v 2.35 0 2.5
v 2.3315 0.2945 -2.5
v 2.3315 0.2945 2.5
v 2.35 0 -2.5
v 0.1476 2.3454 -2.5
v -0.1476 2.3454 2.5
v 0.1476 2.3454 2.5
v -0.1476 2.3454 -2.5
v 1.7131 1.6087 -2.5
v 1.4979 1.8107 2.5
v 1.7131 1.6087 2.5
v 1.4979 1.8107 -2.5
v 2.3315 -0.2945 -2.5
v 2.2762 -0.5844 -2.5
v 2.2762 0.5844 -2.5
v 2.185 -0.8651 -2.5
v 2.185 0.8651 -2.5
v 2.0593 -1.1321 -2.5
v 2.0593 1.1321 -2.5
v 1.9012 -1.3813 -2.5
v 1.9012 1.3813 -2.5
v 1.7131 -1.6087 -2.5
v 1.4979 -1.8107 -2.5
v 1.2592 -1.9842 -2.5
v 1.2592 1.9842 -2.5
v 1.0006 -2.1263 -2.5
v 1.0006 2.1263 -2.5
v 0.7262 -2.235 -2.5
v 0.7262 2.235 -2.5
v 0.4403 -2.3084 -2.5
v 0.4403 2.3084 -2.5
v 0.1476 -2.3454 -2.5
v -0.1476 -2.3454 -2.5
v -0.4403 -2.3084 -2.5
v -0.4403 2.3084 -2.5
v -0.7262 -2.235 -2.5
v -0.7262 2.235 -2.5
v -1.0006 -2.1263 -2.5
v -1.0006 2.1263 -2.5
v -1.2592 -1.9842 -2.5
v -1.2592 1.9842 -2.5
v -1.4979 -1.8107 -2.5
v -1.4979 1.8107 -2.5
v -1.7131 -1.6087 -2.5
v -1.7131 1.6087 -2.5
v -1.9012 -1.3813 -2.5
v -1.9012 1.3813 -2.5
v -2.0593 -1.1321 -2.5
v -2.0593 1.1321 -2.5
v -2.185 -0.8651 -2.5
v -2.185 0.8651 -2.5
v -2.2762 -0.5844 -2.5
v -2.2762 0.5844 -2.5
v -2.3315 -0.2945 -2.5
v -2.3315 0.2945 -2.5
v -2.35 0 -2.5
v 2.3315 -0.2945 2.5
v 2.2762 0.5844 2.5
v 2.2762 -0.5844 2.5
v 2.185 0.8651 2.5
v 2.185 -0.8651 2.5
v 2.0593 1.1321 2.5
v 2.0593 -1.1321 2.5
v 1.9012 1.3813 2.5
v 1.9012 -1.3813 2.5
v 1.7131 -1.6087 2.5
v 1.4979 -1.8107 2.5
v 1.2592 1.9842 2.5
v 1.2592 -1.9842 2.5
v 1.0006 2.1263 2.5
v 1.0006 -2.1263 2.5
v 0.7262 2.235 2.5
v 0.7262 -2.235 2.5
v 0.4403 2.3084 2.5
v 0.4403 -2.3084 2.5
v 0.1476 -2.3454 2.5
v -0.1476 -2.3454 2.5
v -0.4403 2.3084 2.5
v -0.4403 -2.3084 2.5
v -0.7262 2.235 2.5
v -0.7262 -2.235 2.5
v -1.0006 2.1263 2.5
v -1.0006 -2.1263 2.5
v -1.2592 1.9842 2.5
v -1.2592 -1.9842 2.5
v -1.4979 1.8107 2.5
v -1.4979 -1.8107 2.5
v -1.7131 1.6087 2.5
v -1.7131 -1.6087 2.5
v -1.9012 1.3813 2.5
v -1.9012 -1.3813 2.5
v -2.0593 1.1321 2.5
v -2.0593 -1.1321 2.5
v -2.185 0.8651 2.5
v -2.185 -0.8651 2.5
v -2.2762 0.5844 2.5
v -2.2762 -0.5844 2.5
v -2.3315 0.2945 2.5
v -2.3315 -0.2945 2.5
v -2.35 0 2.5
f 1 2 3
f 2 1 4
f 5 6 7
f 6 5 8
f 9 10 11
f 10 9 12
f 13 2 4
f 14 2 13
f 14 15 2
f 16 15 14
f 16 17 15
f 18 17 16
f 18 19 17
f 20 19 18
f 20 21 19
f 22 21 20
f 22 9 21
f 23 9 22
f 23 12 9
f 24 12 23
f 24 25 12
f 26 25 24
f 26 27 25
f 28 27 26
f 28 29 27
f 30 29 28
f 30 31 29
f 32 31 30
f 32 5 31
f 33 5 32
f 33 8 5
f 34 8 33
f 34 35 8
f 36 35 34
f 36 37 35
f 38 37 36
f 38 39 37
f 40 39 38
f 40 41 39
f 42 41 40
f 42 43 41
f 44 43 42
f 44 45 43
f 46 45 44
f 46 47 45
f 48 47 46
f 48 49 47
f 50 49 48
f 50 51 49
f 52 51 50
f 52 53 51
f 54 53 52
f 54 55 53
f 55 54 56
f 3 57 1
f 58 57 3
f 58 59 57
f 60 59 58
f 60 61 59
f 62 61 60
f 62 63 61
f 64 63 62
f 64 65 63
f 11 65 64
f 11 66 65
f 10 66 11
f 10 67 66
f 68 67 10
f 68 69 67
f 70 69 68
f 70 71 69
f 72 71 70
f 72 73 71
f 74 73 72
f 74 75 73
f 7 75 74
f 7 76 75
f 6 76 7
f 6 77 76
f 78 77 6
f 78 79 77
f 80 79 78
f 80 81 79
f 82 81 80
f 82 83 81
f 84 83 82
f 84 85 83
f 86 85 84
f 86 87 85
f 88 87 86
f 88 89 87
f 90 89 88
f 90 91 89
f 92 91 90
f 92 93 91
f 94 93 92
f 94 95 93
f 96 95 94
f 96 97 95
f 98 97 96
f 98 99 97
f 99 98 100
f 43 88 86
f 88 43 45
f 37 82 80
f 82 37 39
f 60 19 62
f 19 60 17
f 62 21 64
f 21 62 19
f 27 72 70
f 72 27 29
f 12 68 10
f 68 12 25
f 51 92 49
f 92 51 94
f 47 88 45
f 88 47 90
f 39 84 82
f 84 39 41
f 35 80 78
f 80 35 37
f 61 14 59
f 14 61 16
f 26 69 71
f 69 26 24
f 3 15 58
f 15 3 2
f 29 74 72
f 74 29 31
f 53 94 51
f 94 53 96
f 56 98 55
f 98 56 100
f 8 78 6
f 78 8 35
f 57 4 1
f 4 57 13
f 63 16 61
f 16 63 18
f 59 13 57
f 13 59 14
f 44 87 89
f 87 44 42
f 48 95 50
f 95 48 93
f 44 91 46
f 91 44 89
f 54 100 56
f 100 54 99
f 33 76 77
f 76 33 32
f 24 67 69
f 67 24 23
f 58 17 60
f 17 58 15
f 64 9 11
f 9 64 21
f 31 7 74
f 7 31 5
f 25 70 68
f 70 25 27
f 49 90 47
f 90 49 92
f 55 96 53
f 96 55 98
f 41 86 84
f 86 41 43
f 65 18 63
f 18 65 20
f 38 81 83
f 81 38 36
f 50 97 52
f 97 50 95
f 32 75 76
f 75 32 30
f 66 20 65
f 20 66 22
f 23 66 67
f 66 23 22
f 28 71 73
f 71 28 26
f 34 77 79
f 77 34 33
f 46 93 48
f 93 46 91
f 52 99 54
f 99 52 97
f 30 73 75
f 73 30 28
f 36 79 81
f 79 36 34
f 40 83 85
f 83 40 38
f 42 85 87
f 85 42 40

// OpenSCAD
$fn = 50;


difference() {
	union() {
		translate(v = [0, 0, -2.5000000000]) {
			cylinder(h = 5, r = 2.3500000000);
		}
	}
	union() {
		translate(v = [0, 0, -100.0000000000]) {
			cylinder(h = 200, r = 0);
		}
	}
}
